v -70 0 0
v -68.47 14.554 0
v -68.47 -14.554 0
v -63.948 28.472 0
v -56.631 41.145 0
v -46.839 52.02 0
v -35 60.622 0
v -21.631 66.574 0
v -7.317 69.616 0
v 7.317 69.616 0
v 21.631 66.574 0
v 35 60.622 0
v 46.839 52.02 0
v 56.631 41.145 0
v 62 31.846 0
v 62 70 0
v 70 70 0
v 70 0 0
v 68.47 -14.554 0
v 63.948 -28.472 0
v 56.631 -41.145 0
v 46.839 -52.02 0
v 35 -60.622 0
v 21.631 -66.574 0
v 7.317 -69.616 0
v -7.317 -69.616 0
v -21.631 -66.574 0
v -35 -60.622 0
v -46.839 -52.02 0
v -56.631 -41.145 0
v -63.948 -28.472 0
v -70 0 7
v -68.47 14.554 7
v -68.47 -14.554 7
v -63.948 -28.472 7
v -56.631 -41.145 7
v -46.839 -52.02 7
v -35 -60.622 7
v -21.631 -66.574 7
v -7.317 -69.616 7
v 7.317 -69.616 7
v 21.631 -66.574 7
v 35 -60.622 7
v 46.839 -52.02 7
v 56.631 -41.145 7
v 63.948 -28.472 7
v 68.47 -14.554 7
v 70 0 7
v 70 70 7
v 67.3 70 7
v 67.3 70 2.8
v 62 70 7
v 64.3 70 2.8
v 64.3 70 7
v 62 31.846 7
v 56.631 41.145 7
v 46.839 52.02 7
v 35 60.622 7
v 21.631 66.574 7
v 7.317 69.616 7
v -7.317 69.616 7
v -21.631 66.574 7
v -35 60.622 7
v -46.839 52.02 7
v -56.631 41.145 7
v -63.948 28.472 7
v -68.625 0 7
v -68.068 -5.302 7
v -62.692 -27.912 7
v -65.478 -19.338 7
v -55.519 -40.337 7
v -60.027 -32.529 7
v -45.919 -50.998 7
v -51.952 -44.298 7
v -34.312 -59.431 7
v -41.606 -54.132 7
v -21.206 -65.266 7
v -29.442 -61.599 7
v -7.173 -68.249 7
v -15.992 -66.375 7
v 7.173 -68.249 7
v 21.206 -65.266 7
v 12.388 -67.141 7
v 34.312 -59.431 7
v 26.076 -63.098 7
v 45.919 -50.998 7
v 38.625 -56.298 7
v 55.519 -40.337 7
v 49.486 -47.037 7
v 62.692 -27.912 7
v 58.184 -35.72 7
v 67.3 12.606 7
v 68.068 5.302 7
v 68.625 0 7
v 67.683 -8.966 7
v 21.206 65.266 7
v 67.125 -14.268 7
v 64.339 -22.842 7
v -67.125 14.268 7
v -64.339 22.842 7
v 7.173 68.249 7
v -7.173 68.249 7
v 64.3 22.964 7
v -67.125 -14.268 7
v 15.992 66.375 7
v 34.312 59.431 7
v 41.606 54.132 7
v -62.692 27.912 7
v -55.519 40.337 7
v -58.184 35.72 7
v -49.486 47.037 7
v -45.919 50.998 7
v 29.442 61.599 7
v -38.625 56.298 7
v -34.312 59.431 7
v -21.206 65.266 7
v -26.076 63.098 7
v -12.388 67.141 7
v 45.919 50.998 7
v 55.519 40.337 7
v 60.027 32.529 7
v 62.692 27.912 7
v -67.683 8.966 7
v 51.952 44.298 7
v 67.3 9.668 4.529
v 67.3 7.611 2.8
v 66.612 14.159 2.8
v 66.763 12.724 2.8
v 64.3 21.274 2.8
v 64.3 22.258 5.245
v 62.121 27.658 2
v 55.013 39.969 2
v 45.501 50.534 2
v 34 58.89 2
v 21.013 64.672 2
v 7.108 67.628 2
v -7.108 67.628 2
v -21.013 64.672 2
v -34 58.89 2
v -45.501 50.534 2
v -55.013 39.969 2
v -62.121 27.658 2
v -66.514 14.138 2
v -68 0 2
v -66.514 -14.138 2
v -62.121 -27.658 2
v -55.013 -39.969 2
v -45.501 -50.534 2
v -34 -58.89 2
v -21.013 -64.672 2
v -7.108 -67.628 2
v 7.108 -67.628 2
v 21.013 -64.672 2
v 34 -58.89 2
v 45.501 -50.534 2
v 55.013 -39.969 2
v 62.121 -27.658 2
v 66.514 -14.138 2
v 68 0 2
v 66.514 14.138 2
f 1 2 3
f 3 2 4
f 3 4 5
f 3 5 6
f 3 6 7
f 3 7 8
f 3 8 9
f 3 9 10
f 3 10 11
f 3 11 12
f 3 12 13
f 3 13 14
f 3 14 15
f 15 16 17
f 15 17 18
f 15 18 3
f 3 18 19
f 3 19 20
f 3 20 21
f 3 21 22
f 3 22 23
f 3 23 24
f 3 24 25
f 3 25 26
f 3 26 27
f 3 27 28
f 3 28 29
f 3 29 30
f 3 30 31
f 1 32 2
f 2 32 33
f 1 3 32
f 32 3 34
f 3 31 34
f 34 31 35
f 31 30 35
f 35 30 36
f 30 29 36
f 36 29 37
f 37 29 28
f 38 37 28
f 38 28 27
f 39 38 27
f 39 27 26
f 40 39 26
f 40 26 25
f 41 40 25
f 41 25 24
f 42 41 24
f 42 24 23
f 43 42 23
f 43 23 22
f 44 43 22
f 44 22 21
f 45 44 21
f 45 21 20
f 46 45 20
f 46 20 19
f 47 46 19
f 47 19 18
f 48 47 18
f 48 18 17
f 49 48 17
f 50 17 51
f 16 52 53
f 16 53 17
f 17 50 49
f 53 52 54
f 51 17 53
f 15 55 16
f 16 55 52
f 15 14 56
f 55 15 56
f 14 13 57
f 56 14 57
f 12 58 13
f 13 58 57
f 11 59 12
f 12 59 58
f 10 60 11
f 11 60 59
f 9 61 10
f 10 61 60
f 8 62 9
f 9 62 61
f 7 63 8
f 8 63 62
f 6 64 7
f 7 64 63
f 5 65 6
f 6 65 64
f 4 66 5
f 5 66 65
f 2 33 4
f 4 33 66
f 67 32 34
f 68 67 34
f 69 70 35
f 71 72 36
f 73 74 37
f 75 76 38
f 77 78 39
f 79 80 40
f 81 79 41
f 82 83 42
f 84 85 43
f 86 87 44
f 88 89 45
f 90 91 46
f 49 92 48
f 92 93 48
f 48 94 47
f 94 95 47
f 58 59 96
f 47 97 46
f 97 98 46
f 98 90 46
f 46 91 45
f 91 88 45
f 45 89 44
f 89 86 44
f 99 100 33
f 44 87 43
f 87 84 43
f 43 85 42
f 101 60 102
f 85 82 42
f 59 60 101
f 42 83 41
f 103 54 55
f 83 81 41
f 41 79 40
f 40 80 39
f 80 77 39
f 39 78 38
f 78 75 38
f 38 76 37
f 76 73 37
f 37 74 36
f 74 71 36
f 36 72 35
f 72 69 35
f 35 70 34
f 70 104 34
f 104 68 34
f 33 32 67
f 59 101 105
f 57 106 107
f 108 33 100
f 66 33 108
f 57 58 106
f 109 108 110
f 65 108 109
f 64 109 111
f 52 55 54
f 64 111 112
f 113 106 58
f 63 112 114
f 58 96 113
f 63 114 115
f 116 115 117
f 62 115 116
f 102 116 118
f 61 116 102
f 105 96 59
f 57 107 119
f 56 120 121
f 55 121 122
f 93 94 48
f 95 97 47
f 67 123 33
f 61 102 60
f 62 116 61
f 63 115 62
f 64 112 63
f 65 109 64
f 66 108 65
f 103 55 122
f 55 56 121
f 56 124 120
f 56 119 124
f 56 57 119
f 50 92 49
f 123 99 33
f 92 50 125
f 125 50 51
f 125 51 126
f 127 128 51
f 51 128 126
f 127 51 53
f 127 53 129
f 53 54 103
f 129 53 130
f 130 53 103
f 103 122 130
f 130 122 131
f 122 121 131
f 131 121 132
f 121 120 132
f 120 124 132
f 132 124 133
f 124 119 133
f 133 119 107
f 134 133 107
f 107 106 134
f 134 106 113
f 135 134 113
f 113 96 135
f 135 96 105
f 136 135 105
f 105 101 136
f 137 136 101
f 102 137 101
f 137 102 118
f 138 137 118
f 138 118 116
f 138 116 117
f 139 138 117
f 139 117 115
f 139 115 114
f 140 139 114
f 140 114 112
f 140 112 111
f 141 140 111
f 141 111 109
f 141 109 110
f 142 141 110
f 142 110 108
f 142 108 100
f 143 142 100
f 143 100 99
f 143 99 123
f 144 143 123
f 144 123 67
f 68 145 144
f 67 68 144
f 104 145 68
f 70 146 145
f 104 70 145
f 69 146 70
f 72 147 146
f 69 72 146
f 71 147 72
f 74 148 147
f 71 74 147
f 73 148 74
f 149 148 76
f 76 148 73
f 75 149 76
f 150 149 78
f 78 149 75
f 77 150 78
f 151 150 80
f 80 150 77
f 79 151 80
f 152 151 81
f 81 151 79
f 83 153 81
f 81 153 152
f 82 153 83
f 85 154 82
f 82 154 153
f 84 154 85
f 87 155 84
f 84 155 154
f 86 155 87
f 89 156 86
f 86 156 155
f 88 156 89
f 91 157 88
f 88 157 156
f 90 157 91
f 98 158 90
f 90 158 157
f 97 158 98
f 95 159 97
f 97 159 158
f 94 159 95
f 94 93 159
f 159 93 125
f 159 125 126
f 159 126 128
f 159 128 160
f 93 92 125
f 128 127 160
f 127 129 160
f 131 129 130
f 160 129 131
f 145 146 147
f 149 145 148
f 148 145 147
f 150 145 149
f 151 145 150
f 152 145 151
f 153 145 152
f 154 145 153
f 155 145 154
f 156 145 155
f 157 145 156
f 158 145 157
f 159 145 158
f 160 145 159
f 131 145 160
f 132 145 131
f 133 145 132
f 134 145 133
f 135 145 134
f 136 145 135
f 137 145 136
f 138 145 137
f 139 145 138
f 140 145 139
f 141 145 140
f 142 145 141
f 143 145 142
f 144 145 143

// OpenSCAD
difference() {
union() {
translate([0,0,0]) cylinder(7.0,70,70,center=false); 
translate([62,0,0]) cube([8,70,7],center=false); 
}
union() {
translate([0,0,2]) cylinder(8.0,68,69,center=false); 
translate([64.3,0,2.8]) cube([3,80,4.2],center=false); 
}
}
